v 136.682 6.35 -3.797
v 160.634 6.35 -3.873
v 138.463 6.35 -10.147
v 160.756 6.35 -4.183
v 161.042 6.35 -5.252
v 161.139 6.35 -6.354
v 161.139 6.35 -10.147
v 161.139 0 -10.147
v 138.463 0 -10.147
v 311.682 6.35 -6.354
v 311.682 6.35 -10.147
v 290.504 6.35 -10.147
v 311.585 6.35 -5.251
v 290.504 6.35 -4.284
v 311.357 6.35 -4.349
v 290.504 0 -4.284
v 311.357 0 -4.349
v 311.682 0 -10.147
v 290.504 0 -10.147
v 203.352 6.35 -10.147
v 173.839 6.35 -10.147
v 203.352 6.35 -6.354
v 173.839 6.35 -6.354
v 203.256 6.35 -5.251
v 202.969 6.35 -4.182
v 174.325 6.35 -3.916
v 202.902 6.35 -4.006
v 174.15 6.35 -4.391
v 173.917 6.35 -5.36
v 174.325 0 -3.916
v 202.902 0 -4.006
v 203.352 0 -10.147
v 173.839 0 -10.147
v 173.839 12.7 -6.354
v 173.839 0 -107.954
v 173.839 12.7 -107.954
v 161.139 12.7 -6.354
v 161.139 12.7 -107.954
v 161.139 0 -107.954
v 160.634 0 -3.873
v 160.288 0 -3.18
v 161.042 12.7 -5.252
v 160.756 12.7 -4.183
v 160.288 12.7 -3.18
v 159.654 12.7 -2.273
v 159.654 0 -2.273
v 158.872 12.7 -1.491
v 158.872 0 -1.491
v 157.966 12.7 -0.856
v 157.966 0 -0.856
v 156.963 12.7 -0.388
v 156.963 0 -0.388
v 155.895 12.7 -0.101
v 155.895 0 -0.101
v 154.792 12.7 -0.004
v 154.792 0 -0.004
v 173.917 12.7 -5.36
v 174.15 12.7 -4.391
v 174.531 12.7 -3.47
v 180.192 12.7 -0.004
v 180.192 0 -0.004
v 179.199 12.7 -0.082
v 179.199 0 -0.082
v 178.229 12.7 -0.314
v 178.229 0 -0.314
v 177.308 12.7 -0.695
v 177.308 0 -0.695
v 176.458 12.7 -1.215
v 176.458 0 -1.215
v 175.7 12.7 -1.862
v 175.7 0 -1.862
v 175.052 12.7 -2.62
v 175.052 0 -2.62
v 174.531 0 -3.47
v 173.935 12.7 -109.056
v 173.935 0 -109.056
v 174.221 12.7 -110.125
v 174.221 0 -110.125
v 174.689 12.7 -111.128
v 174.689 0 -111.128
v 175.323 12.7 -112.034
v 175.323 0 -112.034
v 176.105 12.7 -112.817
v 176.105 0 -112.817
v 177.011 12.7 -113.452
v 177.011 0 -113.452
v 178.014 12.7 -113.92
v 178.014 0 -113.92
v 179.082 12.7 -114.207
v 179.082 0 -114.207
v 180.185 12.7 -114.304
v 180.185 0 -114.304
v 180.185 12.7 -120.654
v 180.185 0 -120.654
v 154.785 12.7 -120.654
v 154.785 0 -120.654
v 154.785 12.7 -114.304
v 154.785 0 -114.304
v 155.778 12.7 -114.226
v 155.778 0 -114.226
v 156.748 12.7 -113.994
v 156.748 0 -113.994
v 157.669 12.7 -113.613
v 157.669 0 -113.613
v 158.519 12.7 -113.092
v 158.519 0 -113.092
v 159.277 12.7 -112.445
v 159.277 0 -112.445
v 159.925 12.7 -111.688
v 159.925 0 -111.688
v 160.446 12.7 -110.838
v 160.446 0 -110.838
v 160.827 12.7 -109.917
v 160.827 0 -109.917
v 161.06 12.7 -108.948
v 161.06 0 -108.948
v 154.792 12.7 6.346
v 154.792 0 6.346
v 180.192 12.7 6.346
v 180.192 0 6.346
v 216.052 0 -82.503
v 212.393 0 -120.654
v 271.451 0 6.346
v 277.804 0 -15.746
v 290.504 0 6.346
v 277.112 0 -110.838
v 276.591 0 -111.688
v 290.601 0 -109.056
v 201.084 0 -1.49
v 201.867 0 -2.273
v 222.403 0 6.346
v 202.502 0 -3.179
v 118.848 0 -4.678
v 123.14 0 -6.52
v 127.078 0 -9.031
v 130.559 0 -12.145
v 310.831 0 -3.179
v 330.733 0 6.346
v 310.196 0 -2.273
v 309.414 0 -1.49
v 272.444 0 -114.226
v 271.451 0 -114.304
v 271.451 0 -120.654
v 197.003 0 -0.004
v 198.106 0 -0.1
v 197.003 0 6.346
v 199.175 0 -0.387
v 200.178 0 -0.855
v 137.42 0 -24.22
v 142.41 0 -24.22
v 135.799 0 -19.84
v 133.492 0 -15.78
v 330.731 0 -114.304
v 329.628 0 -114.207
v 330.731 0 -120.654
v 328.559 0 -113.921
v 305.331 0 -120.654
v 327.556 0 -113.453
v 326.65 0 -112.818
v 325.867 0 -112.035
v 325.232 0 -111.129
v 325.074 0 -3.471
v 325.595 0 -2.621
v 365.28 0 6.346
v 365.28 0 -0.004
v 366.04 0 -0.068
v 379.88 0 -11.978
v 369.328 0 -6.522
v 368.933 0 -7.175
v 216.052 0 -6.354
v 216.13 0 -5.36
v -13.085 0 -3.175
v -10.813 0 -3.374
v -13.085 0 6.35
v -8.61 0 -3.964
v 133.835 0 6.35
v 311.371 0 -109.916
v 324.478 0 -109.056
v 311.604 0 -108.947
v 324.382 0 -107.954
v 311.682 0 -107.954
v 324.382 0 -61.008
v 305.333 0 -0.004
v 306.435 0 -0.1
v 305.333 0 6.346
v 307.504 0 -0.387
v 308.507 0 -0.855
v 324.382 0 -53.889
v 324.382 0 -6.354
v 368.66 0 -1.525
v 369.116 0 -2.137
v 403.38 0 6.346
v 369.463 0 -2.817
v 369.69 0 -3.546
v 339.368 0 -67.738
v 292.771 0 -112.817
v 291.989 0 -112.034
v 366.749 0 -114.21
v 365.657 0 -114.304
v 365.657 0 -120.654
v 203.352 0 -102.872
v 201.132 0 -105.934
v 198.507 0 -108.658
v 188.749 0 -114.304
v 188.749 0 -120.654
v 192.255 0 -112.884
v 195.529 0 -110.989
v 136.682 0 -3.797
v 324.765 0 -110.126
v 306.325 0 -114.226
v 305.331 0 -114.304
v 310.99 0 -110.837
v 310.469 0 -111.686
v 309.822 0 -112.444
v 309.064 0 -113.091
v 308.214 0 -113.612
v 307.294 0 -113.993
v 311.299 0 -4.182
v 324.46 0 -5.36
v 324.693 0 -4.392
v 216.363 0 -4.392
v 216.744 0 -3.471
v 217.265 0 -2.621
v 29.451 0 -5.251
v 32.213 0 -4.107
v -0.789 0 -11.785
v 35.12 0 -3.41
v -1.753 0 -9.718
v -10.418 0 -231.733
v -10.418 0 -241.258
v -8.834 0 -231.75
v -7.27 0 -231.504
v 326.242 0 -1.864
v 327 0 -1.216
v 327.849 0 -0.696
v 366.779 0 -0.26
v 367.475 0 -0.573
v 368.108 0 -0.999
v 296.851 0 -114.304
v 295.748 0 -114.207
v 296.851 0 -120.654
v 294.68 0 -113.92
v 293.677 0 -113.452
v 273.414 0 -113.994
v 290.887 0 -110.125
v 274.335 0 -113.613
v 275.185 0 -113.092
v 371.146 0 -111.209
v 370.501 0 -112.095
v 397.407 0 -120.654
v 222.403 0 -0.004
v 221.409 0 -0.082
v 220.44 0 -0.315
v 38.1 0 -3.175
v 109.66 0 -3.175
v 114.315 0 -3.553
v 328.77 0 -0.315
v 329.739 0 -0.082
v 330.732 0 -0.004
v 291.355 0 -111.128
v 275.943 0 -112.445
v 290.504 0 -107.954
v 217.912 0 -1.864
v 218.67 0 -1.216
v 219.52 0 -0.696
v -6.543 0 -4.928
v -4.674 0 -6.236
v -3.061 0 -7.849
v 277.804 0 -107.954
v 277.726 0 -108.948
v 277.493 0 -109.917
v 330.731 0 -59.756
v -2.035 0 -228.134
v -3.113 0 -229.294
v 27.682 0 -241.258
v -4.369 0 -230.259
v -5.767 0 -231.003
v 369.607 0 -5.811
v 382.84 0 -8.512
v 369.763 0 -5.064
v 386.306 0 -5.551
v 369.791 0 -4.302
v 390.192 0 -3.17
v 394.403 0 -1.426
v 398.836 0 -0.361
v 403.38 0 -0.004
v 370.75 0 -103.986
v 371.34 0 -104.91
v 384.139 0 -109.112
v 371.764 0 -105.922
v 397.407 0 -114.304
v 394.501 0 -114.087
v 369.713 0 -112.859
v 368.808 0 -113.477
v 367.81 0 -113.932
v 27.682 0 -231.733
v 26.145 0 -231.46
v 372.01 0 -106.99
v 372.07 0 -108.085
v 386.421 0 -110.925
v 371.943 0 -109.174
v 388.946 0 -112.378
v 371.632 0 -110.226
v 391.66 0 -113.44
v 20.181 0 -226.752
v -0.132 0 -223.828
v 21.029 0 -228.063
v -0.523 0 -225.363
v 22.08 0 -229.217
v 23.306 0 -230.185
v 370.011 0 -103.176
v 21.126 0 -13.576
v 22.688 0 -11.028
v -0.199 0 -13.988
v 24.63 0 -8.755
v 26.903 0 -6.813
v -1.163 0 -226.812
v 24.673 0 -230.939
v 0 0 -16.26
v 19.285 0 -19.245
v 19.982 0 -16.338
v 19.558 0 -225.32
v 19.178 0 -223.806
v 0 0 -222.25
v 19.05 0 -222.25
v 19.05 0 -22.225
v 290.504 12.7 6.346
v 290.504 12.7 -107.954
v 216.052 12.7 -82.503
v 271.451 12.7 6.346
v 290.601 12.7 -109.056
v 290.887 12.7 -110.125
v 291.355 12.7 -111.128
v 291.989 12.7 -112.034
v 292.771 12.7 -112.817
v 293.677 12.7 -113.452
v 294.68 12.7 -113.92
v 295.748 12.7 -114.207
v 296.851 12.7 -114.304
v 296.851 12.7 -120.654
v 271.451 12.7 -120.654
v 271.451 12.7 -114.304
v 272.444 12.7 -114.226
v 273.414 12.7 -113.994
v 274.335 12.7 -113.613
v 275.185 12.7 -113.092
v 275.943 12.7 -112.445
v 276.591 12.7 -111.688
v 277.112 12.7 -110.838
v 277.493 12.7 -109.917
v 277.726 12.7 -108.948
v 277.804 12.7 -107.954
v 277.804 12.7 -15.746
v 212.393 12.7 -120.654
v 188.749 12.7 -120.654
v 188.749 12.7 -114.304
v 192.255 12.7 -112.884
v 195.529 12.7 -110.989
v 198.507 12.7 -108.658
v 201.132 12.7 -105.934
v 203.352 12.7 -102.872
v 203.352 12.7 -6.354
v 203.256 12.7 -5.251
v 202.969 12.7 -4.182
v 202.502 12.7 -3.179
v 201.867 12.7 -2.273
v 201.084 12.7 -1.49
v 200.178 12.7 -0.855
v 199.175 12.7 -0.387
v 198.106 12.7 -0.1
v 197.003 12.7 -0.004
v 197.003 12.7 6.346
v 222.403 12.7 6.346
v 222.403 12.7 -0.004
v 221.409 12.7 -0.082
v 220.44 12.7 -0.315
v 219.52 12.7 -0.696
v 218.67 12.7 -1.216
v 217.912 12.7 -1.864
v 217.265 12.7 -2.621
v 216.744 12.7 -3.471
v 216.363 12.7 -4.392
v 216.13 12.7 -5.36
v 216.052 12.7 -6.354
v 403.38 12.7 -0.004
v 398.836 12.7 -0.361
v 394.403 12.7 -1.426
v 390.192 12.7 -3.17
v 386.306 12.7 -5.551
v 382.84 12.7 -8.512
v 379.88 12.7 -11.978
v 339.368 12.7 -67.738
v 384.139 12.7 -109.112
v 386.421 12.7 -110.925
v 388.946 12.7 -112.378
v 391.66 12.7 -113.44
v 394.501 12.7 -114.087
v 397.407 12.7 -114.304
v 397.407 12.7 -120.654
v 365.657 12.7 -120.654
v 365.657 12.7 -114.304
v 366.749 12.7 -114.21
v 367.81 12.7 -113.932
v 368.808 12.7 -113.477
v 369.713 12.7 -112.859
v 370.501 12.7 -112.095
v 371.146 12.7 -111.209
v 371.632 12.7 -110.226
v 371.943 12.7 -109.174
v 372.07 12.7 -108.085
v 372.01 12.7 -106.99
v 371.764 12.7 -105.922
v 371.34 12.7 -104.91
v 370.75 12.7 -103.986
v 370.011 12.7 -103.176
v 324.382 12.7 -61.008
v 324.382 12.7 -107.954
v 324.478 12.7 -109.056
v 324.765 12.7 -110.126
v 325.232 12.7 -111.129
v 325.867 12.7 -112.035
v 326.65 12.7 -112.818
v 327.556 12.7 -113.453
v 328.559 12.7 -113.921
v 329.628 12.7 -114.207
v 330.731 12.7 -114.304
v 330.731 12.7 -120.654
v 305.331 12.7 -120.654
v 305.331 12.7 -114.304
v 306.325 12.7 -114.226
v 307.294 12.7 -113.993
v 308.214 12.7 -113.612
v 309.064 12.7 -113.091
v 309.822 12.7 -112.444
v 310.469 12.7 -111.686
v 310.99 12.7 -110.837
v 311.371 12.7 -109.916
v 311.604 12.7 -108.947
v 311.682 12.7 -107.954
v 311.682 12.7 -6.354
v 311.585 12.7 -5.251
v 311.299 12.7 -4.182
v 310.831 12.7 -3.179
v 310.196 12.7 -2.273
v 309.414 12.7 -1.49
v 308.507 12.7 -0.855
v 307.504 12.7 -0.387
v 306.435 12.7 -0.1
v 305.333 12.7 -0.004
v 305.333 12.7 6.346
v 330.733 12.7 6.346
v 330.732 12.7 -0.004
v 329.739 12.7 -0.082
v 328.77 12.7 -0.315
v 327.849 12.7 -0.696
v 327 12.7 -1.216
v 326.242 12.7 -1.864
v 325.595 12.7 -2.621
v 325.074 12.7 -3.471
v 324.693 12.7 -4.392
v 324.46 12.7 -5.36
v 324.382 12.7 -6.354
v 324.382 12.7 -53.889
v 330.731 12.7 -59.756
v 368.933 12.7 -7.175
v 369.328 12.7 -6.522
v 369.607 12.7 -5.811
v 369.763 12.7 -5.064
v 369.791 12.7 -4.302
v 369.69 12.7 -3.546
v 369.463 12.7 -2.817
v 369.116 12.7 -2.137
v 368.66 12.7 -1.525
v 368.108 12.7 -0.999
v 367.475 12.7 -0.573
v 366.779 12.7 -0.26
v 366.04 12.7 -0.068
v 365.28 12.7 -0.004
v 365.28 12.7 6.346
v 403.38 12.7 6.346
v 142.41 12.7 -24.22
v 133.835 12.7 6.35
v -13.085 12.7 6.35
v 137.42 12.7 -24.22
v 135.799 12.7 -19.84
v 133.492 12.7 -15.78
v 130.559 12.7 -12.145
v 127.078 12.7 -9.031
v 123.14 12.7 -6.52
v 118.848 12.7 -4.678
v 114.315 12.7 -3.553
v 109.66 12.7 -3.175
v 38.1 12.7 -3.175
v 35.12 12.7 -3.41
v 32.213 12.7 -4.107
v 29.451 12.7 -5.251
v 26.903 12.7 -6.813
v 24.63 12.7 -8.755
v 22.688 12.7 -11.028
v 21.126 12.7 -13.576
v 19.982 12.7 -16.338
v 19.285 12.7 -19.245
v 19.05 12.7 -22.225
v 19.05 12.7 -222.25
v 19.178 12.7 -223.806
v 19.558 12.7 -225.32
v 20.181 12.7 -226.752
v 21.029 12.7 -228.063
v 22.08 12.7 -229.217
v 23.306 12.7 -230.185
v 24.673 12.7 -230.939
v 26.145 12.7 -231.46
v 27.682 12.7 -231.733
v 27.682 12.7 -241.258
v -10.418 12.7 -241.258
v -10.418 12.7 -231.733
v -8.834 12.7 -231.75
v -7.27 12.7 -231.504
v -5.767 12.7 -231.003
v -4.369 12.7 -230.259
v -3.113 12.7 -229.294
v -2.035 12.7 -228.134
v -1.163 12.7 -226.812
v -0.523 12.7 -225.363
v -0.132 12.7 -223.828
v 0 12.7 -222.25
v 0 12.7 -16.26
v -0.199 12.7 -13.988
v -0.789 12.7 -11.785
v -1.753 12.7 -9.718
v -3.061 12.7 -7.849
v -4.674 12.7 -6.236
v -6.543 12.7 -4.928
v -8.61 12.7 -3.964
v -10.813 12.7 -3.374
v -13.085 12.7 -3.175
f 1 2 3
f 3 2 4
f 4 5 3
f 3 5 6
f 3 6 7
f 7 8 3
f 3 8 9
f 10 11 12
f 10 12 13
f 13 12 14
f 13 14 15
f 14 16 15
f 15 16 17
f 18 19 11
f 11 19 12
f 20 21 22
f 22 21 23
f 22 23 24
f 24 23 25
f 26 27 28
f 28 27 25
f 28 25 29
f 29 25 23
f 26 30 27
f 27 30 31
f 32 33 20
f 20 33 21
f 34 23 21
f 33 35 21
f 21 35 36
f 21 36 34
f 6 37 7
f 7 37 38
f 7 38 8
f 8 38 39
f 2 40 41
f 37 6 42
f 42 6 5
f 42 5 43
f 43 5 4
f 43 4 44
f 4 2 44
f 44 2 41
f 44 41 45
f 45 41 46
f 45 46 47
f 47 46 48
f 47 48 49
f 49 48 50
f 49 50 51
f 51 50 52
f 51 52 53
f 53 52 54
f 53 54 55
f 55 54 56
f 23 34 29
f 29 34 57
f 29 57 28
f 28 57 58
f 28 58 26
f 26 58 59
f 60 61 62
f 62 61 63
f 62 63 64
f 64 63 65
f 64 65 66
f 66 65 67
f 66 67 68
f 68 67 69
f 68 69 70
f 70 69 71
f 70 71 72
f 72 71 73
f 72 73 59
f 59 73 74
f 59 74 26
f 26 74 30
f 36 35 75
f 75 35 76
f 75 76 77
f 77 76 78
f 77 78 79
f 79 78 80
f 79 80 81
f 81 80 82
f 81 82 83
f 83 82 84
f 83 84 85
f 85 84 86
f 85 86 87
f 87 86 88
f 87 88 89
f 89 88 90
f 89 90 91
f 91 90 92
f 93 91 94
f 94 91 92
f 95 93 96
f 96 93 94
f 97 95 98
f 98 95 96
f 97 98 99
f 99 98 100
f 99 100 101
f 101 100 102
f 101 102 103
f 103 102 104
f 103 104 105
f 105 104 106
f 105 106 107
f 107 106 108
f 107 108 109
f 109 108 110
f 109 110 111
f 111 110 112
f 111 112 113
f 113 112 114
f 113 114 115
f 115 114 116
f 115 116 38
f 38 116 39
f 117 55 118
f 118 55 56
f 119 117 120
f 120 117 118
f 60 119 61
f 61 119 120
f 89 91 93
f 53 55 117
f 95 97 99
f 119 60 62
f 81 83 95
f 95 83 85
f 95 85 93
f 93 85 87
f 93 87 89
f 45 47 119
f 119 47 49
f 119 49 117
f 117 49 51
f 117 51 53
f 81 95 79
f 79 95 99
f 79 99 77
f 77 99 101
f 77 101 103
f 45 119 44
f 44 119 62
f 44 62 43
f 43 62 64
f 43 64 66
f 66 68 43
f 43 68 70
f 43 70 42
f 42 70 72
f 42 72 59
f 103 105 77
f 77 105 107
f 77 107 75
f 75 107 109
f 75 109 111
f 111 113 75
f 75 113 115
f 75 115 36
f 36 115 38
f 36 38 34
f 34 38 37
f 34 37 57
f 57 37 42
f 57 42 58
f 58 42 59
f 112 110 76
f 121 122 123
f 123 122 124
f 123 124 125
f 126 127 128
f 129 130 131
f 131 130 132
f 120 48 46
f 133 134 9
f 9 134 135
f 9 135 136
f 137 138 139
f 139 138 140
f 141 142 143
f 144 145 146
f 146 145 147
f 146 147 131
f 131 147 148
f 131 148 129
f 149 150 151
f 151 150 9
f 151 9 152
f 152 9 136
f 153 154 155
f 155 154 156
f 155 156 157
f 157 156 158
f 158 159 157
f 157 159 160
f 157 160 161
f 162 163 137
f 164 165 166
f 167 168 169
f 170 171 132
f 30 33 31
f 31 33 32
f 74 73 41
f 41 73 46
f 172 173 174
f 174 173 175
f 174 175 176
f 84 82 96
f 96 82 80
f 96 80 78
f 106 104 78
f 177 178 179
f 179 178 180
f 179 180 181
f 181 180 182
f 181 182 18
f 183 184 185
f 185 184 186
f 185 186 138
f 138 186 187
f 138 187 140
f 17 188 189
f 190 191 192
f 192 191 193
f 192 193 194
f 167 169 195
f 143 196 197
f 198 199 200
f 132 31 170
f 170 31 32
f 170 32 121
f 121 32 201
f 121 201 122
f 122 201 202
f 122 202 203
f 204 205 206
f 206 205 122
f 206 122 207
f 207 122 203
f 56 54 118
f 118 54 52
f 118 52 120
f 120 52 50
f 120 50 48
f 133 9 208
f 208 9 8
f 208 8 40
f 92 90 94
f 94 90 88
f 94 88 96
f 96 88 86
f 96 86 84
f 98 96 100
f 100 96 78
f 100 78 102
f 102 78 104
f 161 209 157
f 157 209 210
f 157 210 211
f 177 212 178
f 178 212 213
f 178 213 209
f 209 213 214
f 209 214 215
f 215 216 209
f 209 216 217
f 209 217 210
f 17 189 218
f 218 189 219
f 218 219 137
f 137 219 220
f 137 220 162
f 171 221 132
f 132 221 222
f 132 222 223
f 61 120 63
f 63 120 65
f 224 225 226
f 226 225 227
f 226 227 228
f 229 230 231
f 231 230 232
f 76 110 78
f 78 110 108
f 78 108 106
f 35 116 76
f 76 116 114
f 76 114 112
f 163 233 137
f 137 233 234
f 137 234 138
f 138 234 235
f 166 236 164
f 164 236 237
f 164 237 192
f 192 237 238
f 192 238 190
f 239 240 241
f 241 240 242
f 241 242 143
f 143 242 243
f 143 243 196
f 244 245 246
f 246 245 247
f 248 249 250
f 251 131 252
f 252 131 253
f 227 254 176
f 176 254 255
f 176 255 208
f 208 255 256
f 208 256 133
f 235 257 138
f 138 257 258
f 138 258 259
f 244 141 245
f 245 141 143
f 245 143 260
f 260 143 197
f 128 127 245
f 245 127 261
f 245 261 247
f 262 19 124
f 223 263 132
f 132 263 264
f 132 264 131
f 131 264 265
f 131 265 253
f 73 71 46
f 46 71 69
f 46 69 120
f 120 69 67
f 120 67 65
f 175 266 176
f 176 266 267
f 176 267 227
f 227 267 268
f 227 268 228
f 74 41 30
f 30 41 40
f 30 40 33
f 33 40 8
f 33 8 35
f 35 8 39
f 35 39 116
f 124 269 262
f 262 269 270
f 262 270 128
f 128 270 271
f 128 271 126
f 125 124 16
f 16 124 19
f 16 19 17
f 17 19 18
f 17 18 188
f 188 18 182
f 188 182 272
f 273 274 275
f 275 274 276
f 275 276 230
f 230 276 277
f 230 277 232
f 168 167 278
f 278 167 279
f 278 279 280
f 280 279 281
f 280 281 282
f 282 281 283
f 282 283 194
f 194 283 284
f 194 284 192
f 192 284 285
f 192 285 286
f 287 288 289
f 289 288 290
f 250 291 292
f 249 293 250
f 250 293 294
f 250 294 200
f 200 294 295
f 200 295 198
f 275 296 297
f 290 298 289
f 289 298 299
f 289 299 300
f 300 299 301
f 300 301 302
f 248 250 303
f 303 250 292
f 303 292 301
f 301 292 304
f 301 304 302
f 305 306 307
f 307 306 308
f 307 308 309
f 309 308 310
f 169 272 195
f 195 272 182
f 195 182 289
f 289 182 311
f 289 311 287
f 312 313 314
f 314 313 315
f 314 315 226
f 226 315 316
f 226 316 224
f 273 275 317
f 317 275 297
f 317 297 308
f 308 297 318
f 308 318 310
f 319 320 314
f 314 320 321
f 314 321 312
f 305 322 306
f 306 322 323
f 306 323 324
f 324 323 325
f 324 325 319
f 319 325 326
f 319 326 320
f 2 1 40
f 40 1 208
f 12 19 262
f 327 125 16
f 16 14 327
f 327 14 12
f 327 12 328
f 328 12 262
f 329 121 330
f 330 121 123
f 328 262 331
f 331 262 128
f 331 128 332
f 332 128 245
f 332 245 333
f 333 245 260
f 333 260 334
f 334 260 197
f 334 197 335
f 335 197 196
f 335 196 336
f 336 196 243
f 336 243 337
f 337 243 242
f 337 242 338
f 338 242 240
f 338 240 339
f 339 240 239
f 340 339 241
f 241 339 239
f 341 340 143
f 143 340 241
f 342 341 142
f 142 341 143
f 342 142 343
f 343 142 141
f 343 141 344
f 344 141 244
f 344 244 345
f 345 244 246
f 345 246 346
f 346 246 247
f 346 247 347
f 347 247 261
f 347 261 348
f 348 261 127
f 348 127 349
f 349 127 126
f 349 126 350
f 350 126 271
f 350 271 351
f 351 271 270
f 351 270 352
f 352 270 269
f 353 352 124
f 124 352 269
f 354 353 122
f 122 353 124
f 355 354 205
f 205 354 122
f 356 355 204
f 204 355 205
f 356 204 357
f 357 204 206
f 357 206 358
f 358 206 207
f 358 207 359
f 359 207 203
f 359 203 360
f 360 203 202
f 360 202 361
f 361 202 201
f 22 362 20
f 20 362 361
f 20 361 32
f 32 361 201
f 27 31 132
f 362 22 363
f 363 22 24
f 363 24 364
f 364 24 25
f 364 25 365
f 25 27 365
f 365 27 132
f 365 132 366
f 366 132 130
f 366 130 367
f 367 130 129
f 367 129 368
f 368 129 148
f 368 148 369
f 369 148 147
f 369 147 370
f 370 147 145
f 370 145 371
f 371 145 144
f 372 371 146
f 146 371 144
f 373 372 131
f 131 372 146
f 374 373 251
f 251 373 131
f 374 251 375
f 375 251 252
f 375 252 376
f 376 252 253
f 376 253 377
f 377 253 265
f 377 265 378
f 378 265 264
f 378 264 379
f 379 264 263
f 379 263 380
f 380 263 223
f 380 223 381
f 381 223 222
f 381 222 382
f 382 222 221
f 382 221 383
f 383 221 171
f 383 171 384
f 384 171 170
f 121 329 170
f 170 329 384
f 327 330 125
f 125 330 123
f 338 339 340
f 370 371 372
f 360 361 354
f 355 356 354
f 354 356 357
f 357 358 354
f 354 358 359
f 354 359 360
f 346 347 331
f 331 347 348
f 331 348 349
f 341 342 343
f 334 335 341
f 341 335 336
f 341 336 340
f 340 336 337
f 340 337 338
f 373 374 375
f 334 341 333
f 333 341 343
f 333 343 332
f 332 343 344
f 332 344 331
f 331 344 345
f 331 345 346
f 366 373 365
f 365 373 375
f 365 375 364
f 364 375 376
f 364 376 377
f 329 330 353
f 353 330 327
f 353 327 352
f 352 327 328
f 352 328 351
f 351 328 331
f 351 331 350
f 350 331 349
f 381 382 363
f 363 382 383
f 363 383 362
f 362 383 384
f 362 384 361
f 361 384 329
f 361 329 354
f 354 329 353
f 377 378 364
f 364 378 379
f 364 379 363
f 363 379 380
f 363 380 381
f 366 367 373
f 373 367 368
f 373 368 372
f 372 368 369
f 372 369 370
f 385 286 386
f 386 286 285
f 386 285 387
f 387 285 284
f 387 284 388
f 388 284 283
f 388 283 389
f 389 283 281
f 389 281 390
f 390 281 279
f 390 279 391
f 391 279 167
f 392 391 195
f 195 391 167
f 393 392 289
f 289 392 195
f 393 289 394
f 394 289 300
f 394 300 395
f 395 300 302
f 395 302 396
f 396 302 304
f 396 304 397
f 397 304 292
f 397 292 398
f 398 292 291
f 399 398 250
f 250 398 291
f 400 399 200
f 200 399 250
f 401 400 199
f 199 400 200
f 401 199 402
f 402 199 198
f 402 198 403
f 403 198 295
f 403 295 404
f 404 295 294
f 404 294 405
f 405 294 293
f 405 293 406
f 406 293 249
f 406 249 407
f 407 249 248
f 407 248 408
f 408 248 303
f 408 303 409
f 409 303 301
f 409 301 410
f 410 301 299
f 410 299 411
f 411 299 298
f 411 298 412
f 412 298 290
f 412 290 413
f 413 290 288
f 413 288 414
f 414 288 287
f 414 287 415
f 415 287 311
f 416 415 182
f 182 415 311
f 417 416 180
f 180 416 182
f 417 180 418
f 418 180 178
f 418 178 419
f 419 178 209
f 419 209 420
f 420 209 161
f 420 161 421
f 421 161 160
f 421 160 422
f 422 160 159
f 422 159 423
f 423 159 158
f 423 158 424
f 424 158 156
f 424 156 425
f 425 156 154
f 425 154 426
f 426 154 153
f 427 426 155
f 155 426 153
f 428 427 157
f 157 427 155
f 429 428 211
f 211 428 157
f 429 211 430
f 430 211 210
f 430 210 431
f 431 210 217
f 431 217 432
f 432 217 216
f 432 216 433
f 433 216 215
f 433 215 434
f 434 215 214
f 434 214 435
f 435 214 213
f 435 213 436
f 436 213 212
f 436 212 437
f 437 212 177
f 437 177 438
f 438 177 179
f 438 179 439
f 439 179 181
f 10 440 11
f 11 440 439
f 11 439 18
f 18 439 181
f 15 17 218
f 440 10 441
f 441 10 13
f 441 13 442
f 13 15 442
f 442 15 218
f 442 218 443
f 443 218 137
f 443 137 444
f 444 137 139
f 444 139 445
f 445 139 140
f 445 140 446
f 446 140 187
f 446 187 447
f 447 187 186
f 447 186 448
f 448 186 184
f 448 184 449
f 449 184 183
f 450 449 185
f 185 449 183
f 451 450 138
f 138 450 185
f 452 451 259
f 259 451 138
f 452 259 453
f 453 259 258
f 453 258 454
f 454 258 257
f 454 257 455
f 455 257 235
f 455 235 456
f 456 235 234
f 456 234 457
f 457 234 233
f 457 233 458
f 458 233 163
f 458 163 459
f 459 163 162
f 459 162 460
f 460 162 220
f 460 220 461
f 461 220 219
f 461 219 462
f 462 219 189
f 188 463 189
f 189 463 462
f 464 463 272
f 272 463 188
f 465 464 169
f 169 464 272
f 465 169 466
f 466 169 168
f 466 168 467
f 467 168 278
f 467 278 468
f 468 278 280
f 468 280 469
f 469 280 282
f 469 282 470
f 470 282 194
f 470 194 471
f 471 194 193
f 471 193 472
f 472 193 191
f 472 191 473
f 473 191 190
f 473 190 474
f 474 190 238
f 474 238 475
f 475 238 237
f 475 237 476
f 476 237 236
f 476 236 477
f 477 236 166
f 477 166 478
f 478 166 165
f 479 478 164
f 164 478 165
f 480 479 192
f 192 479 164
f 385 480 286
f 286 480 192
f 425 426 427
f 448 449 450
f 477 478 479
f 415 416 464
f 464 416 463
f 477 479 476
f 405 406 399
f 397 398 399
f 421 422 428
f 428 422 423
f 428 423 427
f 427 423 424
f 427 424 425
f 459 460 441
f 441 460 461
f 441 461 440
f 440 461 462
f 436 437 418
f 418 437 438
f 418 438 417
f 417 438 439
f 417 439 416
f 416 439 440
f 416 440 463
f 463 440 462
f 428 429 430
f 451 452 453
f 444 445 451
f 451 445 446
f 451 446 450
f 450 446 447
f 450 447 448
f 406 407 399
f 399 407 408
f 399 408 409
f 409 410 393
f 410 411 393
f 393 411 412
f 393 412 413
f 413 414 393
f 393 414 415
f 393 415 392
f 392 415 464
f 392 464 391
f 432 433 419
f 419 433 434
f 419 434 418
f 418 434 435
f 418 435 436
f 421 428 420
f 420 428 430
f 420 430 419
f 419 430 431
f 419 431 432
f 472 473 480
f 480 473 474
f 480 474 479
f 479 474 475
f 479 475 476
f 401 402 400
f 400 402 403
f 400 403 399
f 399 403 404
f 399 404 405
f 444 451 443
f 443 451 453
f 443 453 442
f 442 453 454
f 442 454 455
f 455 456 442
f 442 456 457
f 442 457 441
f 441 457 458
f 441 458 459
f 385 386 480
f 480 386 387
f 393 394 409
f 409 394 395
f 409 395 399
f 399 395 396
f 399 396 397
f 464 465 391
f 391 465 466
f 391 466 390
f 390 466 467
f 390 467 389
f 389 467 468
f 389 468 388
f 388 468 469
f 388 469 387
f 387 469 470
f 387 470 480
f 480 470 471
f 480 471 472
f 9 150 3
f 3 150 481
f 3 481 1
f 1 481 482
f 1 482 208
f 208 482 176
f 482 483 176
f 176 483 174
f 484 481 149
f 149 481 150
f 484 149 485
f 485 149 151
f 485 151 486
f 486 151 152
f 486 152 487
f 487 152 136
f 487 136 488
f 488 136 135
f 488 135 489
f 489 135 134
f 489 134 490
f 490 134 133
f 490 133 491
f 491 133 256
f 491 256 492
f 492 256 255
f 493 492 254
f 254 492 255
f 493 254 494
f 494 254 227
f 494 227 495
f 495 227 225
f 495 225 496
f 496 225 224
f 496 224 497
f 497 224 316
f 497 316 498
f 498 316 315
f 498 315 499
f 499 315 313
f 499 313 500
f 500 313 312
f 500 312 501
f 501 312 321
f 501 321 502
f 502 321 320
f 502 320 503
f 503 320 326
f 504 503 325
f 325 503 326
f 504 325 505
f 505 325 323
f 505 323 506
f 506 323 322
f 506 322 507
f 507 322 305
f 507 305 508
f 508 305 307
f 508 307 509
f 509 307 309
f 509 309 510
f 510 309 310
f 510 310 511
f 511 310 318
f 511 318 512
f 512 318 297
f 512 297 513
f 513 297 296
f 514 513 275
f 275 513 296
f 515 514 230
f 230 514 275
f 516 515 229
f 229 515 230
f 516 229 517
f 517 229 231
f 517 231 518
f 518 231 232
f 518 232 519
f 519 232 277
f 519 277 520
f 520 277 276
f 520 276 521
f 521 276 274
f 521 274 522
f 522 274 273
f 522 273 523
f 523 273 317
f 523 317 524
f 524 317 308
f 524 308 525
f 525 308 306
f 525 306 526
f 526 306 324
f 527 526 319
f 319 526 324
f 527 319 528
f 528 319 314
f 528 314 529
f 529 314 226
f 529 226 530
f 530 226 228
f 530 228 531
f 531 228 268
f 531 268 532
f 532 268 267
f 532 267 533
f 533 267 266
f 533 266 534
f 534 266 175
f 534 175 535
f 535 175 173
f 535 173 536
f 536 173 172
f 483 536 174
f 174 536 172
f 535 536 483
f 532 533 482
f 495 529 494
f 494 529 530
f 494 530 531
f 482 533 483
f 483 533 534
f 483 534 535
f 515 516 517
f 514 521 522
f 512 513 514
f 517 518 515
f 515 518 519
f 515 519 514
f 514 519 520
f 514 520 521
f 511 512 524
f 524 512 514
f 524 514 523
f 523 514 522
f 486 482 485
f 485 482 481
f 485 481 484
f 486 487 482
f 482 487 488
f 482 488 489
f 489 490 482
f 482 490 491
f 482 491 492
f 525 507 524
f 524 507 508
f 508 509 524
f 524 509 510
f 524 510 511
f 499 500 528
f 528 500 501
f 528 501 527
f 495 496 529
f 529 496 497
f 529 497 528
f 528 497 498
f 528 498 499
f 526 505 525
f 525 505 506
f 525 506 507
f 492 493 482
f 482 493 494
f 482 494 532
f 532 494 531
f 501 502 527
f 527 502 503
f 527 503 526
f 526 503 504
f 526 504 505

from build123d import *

# Parameters (mm, degrees)
BOSS_EXTRUDE1_DEPTH     = 12.7
BOSS_EXTRUDE1_2_DEPTH   = 12.7
BOSS_EXTRUDE1_3_DEPTH   = 12.7
BOSS_EXTRUDE1_4_DEPTH   = 12.7
BOSS_EXTRUDE2_DEPTH     = 6.35
CUT_EXTRUDE2_DEPTH      = 471.19349296362236
CUT_EXTRUDE2_DEPTH_BACK = 471.19349296362236


with BuildPart() as part:
    # Sketch2 → Boss-Extrude1 (new body)
    with BuildSketch(Plane(origin=(0, 0, 0), x_dir=(1, 0, 0), z_dir=(0, 1, 0))):
        with BuildLine():
            Line((173.83852694696787, 6.353879523850983), (173.83852694696787, 107.95387952385097))
            ThreePointArc((173.83852694696787, 107.95387952385097), (175.69702705818847, 112.4426365219853), (180.18464742311625, 114.30387952385061))
            Line((180.18464742311625, 114.30387952385061), (180.18464742311627, 120.65387952385097))
            Line((180.18464742311627, 120.65387952385097), (154.78464742311627, 120.65387952385103))
            Line((154.78464742311627, 120.65387952385103), (154.78464742311627, 114.30387952385061))
            ThreePointArc((154.78464742311627, 114.30387952385061), (159.27728359825178, 112.44537975999239), (161.1385269469677, 107.95387952385097))
            Line((161.1385269469677, 107.95387952385097), (161.1385269469677, 6.353879523850983))
            ThreePointArc((161.1385269469677, 6.353879523850983), (159.28002683574687, 1.8651225257164699), (154.79240647081883, 0.00387952385118295))
            Line((154.79240647081883, 0.00387952385118295), (154.79240647081883, -6.34612047614902))
            Line((154.79240647081883, -6.34612047614902), (180.19240647081884, -6.34612047614902))
            Line((180.19240647081884, -6.34612047614902), (180.19240647081887, 0.00387952385118295))
            ThreePointArc((180.19240647081887, 0.00387952385118295), (175.69977029568358, 1.8623792877096292), (173.83852694696787, 6.353879523850983))
        make_face()
    extrude(amount=BOSS_EXTRUDE1_DEPTH)



with BuildPart() as body_2:
    # Sketch2 → Boss-Extrude1 2 (new body)
    with BuildSketch(Plane(origin=(0, 0, 0), x_dir=(1, 0, 0), z_dir=(0, 1, 0))):
        with BuildLine():
            Line((290.5044221112303, -6.346119624362247), (290.50442211122953, 107.95388037563158))
            ThreePointArc((290.50442211122953, 107.95388037563158), (292.3629222224477, 112.44263737377035), (296.8505425873776, 114.30388037563806))
            Line((296.8505425873776, 114.30388037563806), (296.8505425873776, 120.65388037564047))
            Line((296.8505425873776, 120.65388037564047), (271.45054258737764, 120.65388037564018))
            Line((271.45054258737764, 120.65388037564018), (271.4505425873777, 114.30388037563777))
            ThreePointArc((271.4505425873777, 114.30388037563777), (275.94317876251387, 112.44538061177975), (277.80442211123, 107.95388037563791))
            Line((277.80442211123, 107.95388037563791), (277.80442211123005, 15.745570535197672))
            Line((277.80442211123005, 15.745570535197672), (212.3933170880388, 120.65388037563798))
            Line((212.3933170880388, 120.65388037563798), (188.7491541871168, 120.65388037563798))
            Line((188.7491541871168, 120.65388037563798), (188.7491541871168, 114.30388037563738))
            ThreePointArc((188.7491541871168, 114.30388037563738), (197.0586174651338, 109.87545758746259), (203.35223987593548, 102.87199949093673))
            Line((203.35223987593548, 102.87199949093673), (203.35223987593548, 6.353880375637708))
            ThreePointArc((203.35223987593548, 6.353880375637708), (201.49271132298225, 1.8640946501521807), (197.00321001616626, 0.00387952385096785))
            Line((197.00321001616626, 0.00387952385096785), (197.00321001616626, -6.34612047614902))
            Line((197.00321001616626, -6.34612047614902), (222.4032100161663, -6.34612058725173))
            Line((222.4032100161663, -6.34612058725173), (222.4027250756679, 0.00387939423115991))
            ThreePointArc((222.4027250756679, 0.00387939423115991), (217.91228324219506, 1.8635802308402507), (216.0522403203464, 6.353880375637722))
            Line((216.0522403203464, 6.353880375637722), (216.0522403203464, 82.50335442487922))
            Line((216.0522403203464, 82.50335442487922), (271.45054277255036, -6.346119624362282))
            Line((271.45054277255036, -6.346119624362282), (290.5044221112303, -6.346119624362247))
        make_face()
    extrude(amount=BOSS_EXTRUDE1_2_DEPTH)


with BuildPart() as body_3:
    # Sketch2 → Boss-Extrude1 3 (new body)
    with BuildSketch(Plane(origin=(0, 0, 0), x_dir=(1, 0, 0), z_dir=(0, 1, 0))):
        with BuildLine():
            ThreePointArc((379.8796721750226, 11.977744632292787), (390.1923529413957, 3.169883174382882), (403.37970421101926, 0.00388024601806133))
            Line((403.37970421101926, 0.00388024601806133), (403.37970421101926, -6.346119753981942))
            Line((403.37970421101926, -6.346119753981942), (365.27970421101924, -6.346119753981938))
            Line((365.27970421101924, -6.346119753981938), (365.2797042110193, 0.00388024601805613))
            ThreePointArc((365.2797042110193, 0.00388024601805613), (369.3036929855622, 2.4697837385241583), (368.9334095604214, 7.174680748774959))
            Line((368.9334095604214, 7.174680748774959), (330.73082744761575, 59.756024084156806))
            Line((330.73082744761575, 59.756024084156806), (324.38179758784645, 53.88870851238104))
            Line((324.38179758784645, 53.88870851238104), (324.38179758784645, 6.353880042329715))
            ThreePointArc((324.38179758784645, 6.353880042329715), (326.24184092866363, 1.8635806636905663), (330.7322823430498, 0.00388024601804399))
            Line((330.7322823430498, 0.00388024601804399), (330.73276728366636, -6.346119735464957))
            Line((330.73276728366636, -6.346119735464957), (305.3327672836663, -6.346119624362247))
            Line((305.3327672836663, -6.346119624362247), (305.3327672836663, 0.00388037563774091))
            ThreePointArc((305.3327672836663, 0.00388037563774091), (309.8222685904823, 1.8640955019389631), (311.6817971434355, 6.3538812274244805))
            Line((311.6817971434355, 6.3538812274244805), (311.6817971434355, 107.95388156073302))
            ThreePointArc((311.6817971434355, 107.95388156073302), (309.82175422158684, 112.44418170553047), (305.331312388114, 114.30388254213955))
            Line((305.331312388114, 114.30388254213955), (305.33082744761555, 120.65388252362244))
            Line((305.33082744761555, 120.65388252362244), (330.7308274476156, 120.65388241251989))
            Line((330.7308274476156, 120.65388241251989), (330.73082744761564, 114.3038824125199))
            ThreePointArc((330.73082744761564, 114.3038824125199), (326.241326559762, 112.4436677052449), (324.38179758784645, 107.95388274582793))
            Line((324.38179758784645, 107.95388274582793), (324.38179758784645, 61.00818587469014))
            Line((324.38179758784645, 61.00818587469014), (370.01136074815463, 103.17573782782141))
            ThreePointArc((370.01136074815463, 103.17573782782141), (371.6316997254356, 110.22586005871784), (365.6567975878465, 114.30388241251993))
            Line((365.6567975878465, 114.30388241251993), (365.6567975878465, 120.65388241251989))
            Line((365.6567975878465, 120.65388241251989), (397.4067975878465, 120.65388241251989))
            Line((397.4067975878465, 120.65388241251989), (397.4067975878465, 114.3038824125199))
            ThreePointArc((397.4067975878465, 114.3038824125199), (390.28312138184594, 112.95972058249937), (384.1390825743689, 109.11208223600183))
            Line((384.1390825743689, 109.11208223600183), (339.36773990380823, 67.7376357737456))
            Line((339.36773990380823, 67.7376357737456), (379.8796721750226, 11.977744632292787))
        make_face()
    extrude(amount=BOSS_EXTRUDE1_3_DEPTH)


with BuildPart() as body_4:
    # Sketch2 → Boss-Extrude1 4 (new body)
    with BuildSketch(Plane(origin=(0, 0, 0), x_dir=(1, 0, 0), z_dir=(0, 1, 0))):
        with BuildLine():
            Line((0, -6.35), (127, -6.35))
            Line((127, -6.35), (133.835466699924, -6.35))
            Line((133.835466699924, -6.35), (142.41022736904142, 24.2201812141727))
            Line((142.41022736904142, 24.2201812141727), (137.42037994397373, 24.2201812141727))
            ThreePointArc((137.42037994397373, 24.2201812141727), (127.07789830370176, 9.03099759553653), (109.65993293339864, 3.1750000000000025))
            Line((109.65993293339864, 3.1750000000000025), (38.100000000000165, 3.1750000000000007))
            ThreePointArc((38.100000000000165, 3.1750000000000007), (24.629615818396296, 8.754615818396267), (19.050000000000022, 22.225000000000133))
            Line((19.050000000000022, 22.225000000000133), (19.049999999999997, 222.25))
            ThreePointArc((19.049999999999997, 222.25), (21.531156391441193, 228.66169963567893), (27.681998366018952, 231.7330466139162))
            Line((27.681998366018952, 231.7330466139162), (27.68199836601896, 241.2580466139162))
            Line((27.68199836601896, 241.2580466139162), (-10.418001633981042, 241.2580466139162))
            Line((-10.418001633981042, 241.2580466139162), (-10.418001633981042, 231.7330466139162))
            ThreePointArc((-10.418001633981042, 231.7330466139162), (-3.1133003643210593, 229.2938436085588), (0, 222.25))
            Line((0, 222.25), (0, 16.260176542443787))
            ThreePointArc((0, 16.260176542443787), (-3.8325594762586483, 7.0075594762586455), (-13.085176542443792, 3.1750000000000007))
            Line((-13.085176542443792, 3.1750000000000007), (-13.085176542443786, -6.35))
            Line((-13.085176542443786, -6.35), (0, -6.35))
        make_face()
    extrude(amount=BOSS_EXTRUDE1_4_DEPTH)


with BuildPart() as part_1:
    add(part.part)

    add(body_2.part)  # Boss-Extrude2 merges body 2

    add(body_3.part)  # Boss-Extrude2 merges body 3

    add(body_4.part)  # Boss-Extrude2 merges body 4
    # Sketch4 → Boss-Extrude2 (add)
    with BuildSketch(Plane(origin=(0, 0, 0), x_dir=(1, 0, 0), z_dir=(0, 1, 0))):
        Polygon((136.68158195989426, 3.7967857367812146), (376.38878950850017, 4.555259431461488), (376.38878950850017, 10.146785736781245), (136.68158195989426, 10.146785736781215), align=None)
    extrude(amount=BOSS_EXTRUDE2_DEPTH)

    # Sketch6 → Cut-Extrude2 (cut, two sides: drawn at the far end of the back side and taken through both)
    with BuildSketch(Plane(origin=(0, 12.7, 0), x_dir=(1, 0, 0), z_dir=(0, 1, 0)).offset(-CUT_EXTRUDE2_DEPTH_BACK)):
        with BuildLine():
            Line((324.6925686344705, 4.391683942646109), (369.79590978466945, 4.534398457384592))
            ThreePointArc((369.79590978466945, 4.534398457384592), (369.57267914306925, 5.922493261126043), (368.9334095604214, 7.174680748774945))
            Line((368.9334095604214, 7.174680748774945), (366.77404888893807, 10.146785736781244))
            Line((366.77404888893807, 10.146785736781244), (324.38179758784645, 10.146785736781238))
            Line((324.38179758784645, 10.146785736781238), (324.38179758784645, 6.353880042329715))
            ThreePointArc((324.38179758784645, 6.353880042329715), (324.4599715437991, 5.360553286293043), (324.6925686344705, 4.391683942646109))
        make_face()
        with BuildLine():
            Line((216.4851967942631, 4.049297720927505), (264.8734590646552, 4.202406275479168))
            Line((264.8734590646552, 4.202406275479168), (261.16709462286485, 10.14678573678123))
            Line((261.16709462286485, 10.14678573678123), (216.0522403203464, 10.146785736781224))
            Line((216.0522403203464, 10.146785736781224), (216.0522403203464, 6.353880375637722))
            ThreePointArc((216.0522403203464, 6.353880375637722), (216.16141789373137, 5.181430727271779), (216.4851967942631, 4.049297720927505))
        make_face()
    extrude(amount=CUT_EXTRUDE2_DEPTH + CUT_EXTRUDE2_DEPTH_BACK, mode=Mode.SUBTRACT)


solid = part_1.part
